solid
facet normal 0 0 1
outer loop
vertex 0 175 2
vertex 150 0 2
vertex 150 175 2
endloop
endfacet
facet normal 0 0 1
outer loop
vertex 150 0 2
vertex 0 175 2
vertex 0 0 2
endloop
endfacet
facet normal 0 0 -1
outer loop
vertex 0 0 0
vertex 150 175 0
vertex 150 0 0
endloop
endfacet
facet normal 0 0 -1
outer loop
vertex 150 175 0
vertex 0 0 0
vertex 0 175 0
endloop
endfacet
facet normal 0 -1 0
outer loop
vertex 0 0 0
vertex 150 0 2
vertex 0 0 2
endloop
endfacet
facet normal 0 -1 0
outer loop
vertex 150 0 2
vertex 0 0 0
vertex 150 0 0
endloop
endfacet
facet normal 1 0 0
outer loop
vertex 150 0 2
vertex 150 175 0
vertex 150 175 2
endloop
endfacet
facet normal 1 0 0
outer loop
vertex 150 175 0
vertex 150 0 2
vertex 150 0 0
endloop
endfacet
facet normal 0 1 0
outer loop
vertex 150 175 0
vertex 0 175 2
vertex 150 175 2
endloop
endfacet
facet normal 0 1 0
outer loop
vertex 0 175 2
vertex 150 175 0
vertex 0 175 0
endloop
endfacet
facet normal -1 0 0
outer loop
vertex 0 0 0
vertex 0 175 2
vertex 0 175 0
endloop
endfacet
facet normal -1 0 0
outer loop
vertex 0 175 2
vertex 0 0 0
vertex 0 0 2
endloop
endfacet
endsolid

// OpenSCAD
/* This piece was designed by Shawn French (McMaster University, Ontario, Canada)
It is part of the SCIFIcube (SCIentific Fluorescence Imaging cube), a small and portable 3D-printed
fluorescence imager for bacteria, yeast, or any colony-forming organism.  It works well with solid
agar medium, and can image high density samples rapidly over time.  

Details can be found at https://www.github.com/sfrench007/scificube

Copyright 2017 McMaster University

Redistribution and use in source and binary forms, with or without modification, are permitted provided that the following conditions are met:

1. Redistributions of source code must retain the above copyright notice, this list of conditions and the following disclaimer.

2. Redistributions in binary form must reproduce the above copyright notice, this list of conditions and the following disclaimer in the documentation and/or other materials provided with the distribution.

3. Neither the name of the copyright holder nor the names of its contributors may be used to endorse or promote products derived from this software without specific prior written permission.

THIS SOFTWARE IS PROVIDED BY THE COPYRIGHT HOLDERS AND CONTRIBUTORS "AS IS" AND ANY EXPRESS OR IMPLIED WARRANTIES, INCLUDING, BUT NOT LIMITED TO, THE IMPLIED WARRANTIES OF MERCHANTABILITY AND FITNESS FOR A PARTICULAR PURPOSE ARE DISCLAIMED. IN NO EVENT SHALL THE COPYRIGHT HOLDER OR CONTRIBUTORS BE LIABLE FOR ANY DIRECT, INDIRECT, INCIDENTAL, SPECIAL, EXEMPLARY, OR CONSEQUENTIAL DAMAGES (INCLUDING, BUT NOT LIMITED TO, PROCUREMENT OF SUBSTITUTE GOODS OR SERVICES; LOSS OF USE, DATA, OR PROFITS; OR BUSINESS INTERRUPTION) HOWEVER CAUSED AND ON ANY THEORY OF LIABILITY, WHETHER IN CONTRACT, STRICT LIABILITY, OR TORT (INCLUDING NEGLIGENCE OR OTHERWISE) ARISING IN ANY WAY OUT OF THE USE OF THIS SOFTWARE, EVEN IF ADVISED OF THE POSSIBILITY OF SUCH DAMAGE.

*/

// Height 175 mm (camera to base)
// Width 157 mm
// Depth 134 mm
// 135 mm camera to top of transilluminator
// 40 mm transilluminator height (base height)

boardWidth = 147;
boardDepth = 115;
boardHeight = 2;
acWidth = 11.5;
acHeight = 9;
acOffset = 5;
acRad = (acHeight/2)+1;
switchWidth = 11;
switchHeight = 7;
switchOffset = 3.5;

transDepth = 126.5;
transWidth = 157.5;
transHeight = 40;
transWallWidth = (transWidth-boardWidth)/2;

rigWallWidth = 3;
rigHeight = 175;
rigWidth = transWidth + (rigWallWidth * 2);
rigDepth = transDepth + (rigWallWidth * 2);
echo(rigWidth);
echo(rigDepth);
riserHeight = 4.8;
riserWidth = 10;

railWidth = 20;
sideWallWidth = 2;
allowance = 1;
slitDepth = 10;

extensionHeight = 20;

cube(size=[150,rigHeight,sideWallWidth],center=false);
